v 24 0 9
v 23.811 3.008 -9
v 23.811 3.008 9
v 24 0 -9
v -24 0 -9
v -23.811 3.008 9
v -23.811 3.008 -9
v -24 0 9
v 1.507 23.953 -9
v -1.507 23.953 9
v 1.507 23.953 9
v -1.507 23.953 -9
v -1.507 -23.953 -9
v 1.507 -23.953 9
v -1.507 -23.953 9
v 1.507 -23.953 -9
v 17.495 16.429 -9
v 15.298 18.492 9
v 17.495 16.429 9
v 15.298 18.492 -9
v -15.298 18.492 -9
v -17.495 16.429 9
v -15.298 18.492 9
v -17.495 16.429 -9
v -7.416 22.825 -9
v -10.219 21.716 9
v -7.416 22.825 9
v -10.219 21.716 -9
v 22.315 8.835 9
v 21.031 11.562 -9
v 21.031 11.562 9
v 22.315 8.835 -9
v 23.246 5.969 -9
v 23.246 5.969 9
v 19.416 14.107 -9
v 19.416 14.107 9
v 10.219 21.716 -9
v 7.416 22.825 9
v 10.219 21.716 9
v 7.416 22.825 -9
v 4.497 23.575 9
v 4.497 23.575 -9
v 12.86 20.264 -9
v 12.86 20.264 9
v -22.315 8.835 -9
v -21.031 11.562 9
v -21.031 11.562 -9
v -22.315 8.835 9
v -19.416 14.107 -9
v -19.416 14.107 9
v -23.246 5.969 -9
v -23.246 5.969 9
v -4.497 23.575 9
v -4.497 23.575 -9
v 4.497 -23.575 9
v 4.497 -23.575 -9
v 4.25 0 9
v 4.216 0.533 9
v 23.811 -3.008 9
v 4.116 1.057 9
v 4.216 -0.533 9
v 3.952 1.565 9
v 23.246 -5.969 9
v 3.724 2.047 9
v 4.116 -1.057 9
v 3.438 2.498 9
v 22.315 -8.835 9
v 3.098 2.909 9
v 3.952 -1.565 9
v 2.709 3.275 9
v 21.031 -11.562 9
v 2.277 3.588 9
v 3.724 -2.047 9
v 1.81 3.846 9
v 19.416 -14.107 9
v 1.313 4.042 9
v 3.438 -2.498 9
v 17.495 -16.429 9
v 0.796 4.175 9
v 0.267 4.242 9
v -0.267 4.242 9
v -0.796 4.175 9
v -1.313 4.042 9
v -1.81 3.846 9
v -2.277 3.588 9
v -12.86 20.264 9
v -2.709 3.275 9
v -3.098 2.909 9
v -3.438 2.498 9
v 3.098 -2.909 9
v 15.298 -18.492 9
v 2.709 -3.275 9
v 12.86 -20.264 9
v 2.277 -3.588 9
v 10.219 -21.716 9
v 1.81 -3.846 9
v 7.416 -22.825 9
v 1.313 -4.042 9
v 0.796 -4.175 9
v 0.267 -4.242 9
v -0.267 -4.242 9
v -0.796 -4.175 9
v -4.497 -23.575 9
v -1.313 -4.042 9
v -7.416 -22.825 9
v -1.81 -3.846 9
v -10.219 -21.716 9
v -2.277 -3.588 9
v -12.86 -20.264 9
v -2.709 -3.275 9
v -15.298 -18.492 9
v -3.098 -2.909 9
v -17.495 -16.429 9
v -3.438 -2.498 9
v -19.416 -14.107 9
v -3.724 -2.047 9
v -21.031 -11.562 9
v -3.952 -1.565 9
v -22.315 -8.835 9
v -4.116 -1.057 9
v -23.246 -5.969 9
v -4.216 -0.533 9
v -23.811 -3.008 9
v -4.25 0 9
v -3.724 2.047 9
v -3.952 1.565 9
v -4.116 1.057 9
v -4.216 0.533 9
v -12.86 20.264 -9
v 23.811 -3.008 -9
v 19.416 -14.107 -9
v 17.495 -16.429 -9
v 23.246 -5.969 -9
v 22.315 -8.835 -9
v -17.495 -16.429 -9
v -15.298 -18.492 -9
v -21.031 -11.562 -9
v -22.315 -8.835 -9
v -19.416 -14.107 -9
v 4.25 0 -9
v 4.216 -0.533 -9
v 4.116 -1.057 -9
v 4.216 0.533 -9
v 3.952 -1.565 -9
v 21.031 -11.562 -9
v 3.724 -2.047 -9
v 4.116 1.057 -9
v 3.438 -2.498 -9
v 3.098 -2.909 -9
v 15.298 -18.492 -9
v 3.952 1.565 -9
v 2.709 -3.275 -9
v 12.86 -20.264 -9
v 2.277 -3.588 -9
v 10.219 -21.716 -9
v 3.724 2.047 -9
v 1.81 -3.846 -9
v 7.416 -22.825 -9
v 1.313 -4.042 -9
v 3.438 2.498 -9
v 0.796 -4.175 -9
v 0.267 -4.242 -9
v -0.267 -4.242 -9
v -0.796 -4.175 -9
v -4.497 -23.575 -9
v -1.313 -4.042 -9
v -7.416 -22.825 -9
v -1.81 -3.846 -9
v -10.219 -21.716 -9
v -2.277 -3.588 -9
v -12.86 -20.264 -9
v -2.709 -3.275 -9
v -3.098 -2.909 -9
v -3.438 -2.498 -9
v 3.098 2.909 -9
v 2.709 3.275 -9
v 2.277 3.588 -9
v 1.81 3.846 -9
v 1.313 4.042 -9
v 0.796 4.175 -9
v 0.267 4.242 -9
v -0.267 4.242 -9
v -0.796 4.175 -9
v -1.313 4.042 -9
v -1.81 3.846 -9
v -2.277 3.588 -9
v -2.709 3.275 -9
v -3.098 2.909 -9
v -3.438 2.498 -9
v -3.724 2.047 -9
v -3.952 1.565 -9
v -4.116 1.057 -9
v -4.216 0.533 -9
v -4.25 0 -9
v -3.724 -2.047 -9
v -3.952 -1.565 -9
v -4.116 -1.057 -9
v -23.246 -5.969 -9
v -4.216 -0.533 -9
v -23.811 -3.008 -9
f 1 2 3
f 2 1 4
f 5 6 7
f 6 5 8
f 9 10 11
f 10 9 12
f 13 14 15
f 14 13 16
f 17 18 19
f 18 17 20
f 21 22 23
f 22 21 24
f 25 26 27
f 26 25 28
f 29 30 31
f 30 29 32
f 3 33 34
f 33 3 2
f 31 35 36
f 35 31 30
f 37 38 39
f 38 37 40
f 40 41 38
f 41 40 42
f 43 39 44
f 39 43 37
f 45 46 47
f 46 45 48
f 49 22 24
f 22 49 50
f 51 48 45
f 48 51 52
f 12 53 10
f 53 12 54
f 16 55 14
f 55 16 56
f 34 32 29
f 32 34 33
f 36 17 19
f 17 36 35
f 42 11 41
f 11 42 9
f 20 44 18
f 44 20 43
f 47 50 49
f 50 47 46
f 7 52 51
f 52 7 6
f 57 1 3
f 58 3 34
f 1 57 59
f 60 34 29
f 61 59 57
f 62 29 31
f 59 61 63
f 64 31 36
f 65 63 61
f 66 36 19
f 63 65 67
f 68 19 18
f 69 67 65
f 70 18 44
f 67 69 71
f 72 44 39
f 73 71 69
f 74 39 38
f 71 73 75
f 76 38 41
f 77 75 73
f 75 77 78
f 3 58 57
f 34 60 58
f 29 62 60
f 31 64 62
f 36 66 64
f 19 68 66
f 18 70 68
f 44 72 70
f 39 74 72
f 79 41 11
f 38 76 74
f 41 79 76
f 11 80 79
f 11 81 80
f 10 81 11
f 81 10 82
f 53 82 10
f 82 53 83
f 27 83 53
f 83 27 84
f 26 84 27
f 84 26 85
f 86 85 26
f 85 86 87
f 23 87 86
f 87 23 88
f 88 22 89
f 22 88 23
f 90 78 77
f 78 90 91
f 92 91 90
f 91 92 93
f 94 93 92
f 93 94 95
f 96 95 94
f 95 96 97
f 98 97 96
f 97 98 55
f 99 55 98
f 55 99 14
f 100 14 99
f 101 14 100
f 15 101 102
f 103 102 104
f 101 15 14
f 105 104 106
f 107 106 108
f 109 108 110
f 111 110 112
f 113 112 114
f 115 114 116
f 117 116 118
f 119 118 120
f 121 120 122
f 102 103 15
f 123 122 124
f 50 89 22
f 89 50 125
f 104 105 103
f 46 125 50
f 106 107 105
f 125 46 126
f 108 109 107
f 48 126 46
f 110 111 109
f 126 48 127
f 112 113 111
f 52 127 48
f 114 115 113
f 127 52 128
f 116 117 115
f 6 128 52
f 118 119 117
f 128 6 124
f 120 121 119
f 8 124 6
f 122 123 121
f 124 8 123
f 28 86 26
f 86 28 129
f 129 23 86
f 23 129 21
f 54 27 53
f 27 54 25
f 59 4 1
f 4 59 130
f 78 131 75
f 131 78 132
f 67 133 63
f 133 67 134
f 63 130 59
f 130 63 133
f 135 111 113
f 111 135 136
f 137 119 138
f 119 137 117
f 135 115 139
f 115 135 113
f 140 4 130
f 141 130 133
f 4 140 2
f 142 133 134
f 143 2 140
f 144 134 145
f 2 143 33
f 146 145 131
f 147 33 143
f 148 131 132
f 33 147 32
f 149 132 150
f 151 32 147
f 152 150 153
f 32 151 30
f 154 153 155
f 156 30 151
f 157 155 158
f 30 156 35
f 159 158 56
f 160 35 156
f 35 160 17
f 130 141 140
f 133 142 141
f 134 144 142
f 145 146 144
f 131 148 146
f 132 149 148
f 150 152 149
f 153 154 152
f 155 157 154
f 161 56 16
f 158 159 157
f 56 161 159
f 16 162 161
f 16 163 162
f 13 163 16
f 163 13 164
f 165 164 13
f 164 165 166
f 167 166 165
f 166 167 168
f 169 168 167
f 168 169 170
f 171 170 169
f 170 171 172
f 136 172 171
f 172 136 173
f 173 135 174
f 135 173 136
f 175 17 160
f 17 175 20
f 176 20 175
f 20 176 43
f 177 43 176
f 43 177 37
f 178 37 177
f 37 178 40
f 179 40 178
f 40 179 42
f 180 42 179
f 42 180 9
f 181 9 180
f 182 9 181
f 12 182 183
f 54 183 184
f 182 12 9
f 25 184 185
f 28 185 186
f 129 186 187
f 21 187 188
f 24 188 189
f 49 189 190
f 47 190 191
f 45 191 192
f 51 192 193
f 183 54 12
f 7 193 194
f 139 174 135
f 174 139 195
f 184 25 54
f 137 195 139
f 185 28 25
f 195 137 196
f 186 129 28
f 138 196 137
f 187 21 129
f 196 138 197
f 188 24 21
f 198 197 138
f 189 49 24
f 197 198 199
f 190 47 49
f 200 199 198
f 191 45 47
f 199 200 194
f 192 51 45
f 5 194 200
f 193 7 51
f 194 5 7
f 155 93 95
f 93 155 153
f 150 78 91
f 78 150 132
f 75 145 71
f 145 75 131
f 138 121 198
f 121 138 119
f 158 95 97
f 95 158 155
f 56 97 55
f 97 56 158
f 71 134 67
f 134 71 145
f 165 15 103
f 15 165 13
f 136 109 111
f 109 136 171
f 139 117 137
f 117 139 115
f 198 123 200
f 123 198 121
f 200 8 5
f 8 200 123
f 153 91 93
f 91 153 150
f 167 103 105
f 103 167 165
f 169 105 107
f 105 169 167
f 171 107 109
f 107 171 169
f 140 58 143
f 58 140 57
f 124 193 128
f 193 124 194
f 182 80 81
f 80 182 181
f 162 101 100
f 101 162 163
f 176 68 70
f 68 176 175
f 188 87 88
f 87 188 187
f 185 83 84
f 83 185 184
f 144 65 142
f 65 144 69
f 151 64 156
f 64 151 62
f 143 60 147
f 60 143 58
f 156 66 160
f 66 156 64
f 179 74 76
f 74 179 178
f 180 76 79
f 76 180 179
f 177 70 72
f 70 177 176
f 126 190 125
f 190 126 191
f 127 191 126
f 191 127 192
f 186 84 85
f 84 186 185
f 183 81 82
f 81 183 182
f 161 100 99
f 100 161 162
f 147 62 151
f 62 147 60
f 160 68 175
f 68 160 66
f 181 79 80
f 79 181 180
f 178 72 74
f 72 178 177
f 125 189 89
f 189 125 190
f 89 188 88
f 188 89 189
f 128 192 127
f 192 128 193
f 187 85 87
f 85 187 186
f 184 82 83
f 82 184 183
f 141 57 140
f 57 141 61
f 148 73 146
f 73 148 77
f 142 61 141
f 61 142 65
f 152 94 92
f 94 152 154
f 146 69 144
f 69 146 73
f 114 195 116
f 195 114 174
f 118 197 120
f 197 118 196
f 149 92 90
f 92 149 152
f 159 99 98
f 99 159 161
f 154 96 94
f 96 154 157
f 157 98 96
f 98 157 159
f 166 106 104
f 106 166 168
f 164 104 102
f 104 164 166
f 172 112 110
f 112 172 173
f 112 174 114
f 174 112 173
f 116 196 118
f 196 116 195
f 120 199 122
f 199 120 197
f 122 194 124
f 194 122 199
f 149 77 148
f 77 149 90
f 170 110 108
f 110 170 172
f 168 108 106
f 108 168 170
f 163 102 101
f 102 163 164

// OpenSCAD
$fn = 50;


difference() {
	union() {
		translate(v = [0, 0, -9.0000000000]) {
			cylinder(h = 18, r = 24.0000000000);
		}
	}
	union() {
		translate(v = [0, 0, -100.0000000000]) {
			cylinder(h = 200, r = 4.2500000000);
		}
	}
}
